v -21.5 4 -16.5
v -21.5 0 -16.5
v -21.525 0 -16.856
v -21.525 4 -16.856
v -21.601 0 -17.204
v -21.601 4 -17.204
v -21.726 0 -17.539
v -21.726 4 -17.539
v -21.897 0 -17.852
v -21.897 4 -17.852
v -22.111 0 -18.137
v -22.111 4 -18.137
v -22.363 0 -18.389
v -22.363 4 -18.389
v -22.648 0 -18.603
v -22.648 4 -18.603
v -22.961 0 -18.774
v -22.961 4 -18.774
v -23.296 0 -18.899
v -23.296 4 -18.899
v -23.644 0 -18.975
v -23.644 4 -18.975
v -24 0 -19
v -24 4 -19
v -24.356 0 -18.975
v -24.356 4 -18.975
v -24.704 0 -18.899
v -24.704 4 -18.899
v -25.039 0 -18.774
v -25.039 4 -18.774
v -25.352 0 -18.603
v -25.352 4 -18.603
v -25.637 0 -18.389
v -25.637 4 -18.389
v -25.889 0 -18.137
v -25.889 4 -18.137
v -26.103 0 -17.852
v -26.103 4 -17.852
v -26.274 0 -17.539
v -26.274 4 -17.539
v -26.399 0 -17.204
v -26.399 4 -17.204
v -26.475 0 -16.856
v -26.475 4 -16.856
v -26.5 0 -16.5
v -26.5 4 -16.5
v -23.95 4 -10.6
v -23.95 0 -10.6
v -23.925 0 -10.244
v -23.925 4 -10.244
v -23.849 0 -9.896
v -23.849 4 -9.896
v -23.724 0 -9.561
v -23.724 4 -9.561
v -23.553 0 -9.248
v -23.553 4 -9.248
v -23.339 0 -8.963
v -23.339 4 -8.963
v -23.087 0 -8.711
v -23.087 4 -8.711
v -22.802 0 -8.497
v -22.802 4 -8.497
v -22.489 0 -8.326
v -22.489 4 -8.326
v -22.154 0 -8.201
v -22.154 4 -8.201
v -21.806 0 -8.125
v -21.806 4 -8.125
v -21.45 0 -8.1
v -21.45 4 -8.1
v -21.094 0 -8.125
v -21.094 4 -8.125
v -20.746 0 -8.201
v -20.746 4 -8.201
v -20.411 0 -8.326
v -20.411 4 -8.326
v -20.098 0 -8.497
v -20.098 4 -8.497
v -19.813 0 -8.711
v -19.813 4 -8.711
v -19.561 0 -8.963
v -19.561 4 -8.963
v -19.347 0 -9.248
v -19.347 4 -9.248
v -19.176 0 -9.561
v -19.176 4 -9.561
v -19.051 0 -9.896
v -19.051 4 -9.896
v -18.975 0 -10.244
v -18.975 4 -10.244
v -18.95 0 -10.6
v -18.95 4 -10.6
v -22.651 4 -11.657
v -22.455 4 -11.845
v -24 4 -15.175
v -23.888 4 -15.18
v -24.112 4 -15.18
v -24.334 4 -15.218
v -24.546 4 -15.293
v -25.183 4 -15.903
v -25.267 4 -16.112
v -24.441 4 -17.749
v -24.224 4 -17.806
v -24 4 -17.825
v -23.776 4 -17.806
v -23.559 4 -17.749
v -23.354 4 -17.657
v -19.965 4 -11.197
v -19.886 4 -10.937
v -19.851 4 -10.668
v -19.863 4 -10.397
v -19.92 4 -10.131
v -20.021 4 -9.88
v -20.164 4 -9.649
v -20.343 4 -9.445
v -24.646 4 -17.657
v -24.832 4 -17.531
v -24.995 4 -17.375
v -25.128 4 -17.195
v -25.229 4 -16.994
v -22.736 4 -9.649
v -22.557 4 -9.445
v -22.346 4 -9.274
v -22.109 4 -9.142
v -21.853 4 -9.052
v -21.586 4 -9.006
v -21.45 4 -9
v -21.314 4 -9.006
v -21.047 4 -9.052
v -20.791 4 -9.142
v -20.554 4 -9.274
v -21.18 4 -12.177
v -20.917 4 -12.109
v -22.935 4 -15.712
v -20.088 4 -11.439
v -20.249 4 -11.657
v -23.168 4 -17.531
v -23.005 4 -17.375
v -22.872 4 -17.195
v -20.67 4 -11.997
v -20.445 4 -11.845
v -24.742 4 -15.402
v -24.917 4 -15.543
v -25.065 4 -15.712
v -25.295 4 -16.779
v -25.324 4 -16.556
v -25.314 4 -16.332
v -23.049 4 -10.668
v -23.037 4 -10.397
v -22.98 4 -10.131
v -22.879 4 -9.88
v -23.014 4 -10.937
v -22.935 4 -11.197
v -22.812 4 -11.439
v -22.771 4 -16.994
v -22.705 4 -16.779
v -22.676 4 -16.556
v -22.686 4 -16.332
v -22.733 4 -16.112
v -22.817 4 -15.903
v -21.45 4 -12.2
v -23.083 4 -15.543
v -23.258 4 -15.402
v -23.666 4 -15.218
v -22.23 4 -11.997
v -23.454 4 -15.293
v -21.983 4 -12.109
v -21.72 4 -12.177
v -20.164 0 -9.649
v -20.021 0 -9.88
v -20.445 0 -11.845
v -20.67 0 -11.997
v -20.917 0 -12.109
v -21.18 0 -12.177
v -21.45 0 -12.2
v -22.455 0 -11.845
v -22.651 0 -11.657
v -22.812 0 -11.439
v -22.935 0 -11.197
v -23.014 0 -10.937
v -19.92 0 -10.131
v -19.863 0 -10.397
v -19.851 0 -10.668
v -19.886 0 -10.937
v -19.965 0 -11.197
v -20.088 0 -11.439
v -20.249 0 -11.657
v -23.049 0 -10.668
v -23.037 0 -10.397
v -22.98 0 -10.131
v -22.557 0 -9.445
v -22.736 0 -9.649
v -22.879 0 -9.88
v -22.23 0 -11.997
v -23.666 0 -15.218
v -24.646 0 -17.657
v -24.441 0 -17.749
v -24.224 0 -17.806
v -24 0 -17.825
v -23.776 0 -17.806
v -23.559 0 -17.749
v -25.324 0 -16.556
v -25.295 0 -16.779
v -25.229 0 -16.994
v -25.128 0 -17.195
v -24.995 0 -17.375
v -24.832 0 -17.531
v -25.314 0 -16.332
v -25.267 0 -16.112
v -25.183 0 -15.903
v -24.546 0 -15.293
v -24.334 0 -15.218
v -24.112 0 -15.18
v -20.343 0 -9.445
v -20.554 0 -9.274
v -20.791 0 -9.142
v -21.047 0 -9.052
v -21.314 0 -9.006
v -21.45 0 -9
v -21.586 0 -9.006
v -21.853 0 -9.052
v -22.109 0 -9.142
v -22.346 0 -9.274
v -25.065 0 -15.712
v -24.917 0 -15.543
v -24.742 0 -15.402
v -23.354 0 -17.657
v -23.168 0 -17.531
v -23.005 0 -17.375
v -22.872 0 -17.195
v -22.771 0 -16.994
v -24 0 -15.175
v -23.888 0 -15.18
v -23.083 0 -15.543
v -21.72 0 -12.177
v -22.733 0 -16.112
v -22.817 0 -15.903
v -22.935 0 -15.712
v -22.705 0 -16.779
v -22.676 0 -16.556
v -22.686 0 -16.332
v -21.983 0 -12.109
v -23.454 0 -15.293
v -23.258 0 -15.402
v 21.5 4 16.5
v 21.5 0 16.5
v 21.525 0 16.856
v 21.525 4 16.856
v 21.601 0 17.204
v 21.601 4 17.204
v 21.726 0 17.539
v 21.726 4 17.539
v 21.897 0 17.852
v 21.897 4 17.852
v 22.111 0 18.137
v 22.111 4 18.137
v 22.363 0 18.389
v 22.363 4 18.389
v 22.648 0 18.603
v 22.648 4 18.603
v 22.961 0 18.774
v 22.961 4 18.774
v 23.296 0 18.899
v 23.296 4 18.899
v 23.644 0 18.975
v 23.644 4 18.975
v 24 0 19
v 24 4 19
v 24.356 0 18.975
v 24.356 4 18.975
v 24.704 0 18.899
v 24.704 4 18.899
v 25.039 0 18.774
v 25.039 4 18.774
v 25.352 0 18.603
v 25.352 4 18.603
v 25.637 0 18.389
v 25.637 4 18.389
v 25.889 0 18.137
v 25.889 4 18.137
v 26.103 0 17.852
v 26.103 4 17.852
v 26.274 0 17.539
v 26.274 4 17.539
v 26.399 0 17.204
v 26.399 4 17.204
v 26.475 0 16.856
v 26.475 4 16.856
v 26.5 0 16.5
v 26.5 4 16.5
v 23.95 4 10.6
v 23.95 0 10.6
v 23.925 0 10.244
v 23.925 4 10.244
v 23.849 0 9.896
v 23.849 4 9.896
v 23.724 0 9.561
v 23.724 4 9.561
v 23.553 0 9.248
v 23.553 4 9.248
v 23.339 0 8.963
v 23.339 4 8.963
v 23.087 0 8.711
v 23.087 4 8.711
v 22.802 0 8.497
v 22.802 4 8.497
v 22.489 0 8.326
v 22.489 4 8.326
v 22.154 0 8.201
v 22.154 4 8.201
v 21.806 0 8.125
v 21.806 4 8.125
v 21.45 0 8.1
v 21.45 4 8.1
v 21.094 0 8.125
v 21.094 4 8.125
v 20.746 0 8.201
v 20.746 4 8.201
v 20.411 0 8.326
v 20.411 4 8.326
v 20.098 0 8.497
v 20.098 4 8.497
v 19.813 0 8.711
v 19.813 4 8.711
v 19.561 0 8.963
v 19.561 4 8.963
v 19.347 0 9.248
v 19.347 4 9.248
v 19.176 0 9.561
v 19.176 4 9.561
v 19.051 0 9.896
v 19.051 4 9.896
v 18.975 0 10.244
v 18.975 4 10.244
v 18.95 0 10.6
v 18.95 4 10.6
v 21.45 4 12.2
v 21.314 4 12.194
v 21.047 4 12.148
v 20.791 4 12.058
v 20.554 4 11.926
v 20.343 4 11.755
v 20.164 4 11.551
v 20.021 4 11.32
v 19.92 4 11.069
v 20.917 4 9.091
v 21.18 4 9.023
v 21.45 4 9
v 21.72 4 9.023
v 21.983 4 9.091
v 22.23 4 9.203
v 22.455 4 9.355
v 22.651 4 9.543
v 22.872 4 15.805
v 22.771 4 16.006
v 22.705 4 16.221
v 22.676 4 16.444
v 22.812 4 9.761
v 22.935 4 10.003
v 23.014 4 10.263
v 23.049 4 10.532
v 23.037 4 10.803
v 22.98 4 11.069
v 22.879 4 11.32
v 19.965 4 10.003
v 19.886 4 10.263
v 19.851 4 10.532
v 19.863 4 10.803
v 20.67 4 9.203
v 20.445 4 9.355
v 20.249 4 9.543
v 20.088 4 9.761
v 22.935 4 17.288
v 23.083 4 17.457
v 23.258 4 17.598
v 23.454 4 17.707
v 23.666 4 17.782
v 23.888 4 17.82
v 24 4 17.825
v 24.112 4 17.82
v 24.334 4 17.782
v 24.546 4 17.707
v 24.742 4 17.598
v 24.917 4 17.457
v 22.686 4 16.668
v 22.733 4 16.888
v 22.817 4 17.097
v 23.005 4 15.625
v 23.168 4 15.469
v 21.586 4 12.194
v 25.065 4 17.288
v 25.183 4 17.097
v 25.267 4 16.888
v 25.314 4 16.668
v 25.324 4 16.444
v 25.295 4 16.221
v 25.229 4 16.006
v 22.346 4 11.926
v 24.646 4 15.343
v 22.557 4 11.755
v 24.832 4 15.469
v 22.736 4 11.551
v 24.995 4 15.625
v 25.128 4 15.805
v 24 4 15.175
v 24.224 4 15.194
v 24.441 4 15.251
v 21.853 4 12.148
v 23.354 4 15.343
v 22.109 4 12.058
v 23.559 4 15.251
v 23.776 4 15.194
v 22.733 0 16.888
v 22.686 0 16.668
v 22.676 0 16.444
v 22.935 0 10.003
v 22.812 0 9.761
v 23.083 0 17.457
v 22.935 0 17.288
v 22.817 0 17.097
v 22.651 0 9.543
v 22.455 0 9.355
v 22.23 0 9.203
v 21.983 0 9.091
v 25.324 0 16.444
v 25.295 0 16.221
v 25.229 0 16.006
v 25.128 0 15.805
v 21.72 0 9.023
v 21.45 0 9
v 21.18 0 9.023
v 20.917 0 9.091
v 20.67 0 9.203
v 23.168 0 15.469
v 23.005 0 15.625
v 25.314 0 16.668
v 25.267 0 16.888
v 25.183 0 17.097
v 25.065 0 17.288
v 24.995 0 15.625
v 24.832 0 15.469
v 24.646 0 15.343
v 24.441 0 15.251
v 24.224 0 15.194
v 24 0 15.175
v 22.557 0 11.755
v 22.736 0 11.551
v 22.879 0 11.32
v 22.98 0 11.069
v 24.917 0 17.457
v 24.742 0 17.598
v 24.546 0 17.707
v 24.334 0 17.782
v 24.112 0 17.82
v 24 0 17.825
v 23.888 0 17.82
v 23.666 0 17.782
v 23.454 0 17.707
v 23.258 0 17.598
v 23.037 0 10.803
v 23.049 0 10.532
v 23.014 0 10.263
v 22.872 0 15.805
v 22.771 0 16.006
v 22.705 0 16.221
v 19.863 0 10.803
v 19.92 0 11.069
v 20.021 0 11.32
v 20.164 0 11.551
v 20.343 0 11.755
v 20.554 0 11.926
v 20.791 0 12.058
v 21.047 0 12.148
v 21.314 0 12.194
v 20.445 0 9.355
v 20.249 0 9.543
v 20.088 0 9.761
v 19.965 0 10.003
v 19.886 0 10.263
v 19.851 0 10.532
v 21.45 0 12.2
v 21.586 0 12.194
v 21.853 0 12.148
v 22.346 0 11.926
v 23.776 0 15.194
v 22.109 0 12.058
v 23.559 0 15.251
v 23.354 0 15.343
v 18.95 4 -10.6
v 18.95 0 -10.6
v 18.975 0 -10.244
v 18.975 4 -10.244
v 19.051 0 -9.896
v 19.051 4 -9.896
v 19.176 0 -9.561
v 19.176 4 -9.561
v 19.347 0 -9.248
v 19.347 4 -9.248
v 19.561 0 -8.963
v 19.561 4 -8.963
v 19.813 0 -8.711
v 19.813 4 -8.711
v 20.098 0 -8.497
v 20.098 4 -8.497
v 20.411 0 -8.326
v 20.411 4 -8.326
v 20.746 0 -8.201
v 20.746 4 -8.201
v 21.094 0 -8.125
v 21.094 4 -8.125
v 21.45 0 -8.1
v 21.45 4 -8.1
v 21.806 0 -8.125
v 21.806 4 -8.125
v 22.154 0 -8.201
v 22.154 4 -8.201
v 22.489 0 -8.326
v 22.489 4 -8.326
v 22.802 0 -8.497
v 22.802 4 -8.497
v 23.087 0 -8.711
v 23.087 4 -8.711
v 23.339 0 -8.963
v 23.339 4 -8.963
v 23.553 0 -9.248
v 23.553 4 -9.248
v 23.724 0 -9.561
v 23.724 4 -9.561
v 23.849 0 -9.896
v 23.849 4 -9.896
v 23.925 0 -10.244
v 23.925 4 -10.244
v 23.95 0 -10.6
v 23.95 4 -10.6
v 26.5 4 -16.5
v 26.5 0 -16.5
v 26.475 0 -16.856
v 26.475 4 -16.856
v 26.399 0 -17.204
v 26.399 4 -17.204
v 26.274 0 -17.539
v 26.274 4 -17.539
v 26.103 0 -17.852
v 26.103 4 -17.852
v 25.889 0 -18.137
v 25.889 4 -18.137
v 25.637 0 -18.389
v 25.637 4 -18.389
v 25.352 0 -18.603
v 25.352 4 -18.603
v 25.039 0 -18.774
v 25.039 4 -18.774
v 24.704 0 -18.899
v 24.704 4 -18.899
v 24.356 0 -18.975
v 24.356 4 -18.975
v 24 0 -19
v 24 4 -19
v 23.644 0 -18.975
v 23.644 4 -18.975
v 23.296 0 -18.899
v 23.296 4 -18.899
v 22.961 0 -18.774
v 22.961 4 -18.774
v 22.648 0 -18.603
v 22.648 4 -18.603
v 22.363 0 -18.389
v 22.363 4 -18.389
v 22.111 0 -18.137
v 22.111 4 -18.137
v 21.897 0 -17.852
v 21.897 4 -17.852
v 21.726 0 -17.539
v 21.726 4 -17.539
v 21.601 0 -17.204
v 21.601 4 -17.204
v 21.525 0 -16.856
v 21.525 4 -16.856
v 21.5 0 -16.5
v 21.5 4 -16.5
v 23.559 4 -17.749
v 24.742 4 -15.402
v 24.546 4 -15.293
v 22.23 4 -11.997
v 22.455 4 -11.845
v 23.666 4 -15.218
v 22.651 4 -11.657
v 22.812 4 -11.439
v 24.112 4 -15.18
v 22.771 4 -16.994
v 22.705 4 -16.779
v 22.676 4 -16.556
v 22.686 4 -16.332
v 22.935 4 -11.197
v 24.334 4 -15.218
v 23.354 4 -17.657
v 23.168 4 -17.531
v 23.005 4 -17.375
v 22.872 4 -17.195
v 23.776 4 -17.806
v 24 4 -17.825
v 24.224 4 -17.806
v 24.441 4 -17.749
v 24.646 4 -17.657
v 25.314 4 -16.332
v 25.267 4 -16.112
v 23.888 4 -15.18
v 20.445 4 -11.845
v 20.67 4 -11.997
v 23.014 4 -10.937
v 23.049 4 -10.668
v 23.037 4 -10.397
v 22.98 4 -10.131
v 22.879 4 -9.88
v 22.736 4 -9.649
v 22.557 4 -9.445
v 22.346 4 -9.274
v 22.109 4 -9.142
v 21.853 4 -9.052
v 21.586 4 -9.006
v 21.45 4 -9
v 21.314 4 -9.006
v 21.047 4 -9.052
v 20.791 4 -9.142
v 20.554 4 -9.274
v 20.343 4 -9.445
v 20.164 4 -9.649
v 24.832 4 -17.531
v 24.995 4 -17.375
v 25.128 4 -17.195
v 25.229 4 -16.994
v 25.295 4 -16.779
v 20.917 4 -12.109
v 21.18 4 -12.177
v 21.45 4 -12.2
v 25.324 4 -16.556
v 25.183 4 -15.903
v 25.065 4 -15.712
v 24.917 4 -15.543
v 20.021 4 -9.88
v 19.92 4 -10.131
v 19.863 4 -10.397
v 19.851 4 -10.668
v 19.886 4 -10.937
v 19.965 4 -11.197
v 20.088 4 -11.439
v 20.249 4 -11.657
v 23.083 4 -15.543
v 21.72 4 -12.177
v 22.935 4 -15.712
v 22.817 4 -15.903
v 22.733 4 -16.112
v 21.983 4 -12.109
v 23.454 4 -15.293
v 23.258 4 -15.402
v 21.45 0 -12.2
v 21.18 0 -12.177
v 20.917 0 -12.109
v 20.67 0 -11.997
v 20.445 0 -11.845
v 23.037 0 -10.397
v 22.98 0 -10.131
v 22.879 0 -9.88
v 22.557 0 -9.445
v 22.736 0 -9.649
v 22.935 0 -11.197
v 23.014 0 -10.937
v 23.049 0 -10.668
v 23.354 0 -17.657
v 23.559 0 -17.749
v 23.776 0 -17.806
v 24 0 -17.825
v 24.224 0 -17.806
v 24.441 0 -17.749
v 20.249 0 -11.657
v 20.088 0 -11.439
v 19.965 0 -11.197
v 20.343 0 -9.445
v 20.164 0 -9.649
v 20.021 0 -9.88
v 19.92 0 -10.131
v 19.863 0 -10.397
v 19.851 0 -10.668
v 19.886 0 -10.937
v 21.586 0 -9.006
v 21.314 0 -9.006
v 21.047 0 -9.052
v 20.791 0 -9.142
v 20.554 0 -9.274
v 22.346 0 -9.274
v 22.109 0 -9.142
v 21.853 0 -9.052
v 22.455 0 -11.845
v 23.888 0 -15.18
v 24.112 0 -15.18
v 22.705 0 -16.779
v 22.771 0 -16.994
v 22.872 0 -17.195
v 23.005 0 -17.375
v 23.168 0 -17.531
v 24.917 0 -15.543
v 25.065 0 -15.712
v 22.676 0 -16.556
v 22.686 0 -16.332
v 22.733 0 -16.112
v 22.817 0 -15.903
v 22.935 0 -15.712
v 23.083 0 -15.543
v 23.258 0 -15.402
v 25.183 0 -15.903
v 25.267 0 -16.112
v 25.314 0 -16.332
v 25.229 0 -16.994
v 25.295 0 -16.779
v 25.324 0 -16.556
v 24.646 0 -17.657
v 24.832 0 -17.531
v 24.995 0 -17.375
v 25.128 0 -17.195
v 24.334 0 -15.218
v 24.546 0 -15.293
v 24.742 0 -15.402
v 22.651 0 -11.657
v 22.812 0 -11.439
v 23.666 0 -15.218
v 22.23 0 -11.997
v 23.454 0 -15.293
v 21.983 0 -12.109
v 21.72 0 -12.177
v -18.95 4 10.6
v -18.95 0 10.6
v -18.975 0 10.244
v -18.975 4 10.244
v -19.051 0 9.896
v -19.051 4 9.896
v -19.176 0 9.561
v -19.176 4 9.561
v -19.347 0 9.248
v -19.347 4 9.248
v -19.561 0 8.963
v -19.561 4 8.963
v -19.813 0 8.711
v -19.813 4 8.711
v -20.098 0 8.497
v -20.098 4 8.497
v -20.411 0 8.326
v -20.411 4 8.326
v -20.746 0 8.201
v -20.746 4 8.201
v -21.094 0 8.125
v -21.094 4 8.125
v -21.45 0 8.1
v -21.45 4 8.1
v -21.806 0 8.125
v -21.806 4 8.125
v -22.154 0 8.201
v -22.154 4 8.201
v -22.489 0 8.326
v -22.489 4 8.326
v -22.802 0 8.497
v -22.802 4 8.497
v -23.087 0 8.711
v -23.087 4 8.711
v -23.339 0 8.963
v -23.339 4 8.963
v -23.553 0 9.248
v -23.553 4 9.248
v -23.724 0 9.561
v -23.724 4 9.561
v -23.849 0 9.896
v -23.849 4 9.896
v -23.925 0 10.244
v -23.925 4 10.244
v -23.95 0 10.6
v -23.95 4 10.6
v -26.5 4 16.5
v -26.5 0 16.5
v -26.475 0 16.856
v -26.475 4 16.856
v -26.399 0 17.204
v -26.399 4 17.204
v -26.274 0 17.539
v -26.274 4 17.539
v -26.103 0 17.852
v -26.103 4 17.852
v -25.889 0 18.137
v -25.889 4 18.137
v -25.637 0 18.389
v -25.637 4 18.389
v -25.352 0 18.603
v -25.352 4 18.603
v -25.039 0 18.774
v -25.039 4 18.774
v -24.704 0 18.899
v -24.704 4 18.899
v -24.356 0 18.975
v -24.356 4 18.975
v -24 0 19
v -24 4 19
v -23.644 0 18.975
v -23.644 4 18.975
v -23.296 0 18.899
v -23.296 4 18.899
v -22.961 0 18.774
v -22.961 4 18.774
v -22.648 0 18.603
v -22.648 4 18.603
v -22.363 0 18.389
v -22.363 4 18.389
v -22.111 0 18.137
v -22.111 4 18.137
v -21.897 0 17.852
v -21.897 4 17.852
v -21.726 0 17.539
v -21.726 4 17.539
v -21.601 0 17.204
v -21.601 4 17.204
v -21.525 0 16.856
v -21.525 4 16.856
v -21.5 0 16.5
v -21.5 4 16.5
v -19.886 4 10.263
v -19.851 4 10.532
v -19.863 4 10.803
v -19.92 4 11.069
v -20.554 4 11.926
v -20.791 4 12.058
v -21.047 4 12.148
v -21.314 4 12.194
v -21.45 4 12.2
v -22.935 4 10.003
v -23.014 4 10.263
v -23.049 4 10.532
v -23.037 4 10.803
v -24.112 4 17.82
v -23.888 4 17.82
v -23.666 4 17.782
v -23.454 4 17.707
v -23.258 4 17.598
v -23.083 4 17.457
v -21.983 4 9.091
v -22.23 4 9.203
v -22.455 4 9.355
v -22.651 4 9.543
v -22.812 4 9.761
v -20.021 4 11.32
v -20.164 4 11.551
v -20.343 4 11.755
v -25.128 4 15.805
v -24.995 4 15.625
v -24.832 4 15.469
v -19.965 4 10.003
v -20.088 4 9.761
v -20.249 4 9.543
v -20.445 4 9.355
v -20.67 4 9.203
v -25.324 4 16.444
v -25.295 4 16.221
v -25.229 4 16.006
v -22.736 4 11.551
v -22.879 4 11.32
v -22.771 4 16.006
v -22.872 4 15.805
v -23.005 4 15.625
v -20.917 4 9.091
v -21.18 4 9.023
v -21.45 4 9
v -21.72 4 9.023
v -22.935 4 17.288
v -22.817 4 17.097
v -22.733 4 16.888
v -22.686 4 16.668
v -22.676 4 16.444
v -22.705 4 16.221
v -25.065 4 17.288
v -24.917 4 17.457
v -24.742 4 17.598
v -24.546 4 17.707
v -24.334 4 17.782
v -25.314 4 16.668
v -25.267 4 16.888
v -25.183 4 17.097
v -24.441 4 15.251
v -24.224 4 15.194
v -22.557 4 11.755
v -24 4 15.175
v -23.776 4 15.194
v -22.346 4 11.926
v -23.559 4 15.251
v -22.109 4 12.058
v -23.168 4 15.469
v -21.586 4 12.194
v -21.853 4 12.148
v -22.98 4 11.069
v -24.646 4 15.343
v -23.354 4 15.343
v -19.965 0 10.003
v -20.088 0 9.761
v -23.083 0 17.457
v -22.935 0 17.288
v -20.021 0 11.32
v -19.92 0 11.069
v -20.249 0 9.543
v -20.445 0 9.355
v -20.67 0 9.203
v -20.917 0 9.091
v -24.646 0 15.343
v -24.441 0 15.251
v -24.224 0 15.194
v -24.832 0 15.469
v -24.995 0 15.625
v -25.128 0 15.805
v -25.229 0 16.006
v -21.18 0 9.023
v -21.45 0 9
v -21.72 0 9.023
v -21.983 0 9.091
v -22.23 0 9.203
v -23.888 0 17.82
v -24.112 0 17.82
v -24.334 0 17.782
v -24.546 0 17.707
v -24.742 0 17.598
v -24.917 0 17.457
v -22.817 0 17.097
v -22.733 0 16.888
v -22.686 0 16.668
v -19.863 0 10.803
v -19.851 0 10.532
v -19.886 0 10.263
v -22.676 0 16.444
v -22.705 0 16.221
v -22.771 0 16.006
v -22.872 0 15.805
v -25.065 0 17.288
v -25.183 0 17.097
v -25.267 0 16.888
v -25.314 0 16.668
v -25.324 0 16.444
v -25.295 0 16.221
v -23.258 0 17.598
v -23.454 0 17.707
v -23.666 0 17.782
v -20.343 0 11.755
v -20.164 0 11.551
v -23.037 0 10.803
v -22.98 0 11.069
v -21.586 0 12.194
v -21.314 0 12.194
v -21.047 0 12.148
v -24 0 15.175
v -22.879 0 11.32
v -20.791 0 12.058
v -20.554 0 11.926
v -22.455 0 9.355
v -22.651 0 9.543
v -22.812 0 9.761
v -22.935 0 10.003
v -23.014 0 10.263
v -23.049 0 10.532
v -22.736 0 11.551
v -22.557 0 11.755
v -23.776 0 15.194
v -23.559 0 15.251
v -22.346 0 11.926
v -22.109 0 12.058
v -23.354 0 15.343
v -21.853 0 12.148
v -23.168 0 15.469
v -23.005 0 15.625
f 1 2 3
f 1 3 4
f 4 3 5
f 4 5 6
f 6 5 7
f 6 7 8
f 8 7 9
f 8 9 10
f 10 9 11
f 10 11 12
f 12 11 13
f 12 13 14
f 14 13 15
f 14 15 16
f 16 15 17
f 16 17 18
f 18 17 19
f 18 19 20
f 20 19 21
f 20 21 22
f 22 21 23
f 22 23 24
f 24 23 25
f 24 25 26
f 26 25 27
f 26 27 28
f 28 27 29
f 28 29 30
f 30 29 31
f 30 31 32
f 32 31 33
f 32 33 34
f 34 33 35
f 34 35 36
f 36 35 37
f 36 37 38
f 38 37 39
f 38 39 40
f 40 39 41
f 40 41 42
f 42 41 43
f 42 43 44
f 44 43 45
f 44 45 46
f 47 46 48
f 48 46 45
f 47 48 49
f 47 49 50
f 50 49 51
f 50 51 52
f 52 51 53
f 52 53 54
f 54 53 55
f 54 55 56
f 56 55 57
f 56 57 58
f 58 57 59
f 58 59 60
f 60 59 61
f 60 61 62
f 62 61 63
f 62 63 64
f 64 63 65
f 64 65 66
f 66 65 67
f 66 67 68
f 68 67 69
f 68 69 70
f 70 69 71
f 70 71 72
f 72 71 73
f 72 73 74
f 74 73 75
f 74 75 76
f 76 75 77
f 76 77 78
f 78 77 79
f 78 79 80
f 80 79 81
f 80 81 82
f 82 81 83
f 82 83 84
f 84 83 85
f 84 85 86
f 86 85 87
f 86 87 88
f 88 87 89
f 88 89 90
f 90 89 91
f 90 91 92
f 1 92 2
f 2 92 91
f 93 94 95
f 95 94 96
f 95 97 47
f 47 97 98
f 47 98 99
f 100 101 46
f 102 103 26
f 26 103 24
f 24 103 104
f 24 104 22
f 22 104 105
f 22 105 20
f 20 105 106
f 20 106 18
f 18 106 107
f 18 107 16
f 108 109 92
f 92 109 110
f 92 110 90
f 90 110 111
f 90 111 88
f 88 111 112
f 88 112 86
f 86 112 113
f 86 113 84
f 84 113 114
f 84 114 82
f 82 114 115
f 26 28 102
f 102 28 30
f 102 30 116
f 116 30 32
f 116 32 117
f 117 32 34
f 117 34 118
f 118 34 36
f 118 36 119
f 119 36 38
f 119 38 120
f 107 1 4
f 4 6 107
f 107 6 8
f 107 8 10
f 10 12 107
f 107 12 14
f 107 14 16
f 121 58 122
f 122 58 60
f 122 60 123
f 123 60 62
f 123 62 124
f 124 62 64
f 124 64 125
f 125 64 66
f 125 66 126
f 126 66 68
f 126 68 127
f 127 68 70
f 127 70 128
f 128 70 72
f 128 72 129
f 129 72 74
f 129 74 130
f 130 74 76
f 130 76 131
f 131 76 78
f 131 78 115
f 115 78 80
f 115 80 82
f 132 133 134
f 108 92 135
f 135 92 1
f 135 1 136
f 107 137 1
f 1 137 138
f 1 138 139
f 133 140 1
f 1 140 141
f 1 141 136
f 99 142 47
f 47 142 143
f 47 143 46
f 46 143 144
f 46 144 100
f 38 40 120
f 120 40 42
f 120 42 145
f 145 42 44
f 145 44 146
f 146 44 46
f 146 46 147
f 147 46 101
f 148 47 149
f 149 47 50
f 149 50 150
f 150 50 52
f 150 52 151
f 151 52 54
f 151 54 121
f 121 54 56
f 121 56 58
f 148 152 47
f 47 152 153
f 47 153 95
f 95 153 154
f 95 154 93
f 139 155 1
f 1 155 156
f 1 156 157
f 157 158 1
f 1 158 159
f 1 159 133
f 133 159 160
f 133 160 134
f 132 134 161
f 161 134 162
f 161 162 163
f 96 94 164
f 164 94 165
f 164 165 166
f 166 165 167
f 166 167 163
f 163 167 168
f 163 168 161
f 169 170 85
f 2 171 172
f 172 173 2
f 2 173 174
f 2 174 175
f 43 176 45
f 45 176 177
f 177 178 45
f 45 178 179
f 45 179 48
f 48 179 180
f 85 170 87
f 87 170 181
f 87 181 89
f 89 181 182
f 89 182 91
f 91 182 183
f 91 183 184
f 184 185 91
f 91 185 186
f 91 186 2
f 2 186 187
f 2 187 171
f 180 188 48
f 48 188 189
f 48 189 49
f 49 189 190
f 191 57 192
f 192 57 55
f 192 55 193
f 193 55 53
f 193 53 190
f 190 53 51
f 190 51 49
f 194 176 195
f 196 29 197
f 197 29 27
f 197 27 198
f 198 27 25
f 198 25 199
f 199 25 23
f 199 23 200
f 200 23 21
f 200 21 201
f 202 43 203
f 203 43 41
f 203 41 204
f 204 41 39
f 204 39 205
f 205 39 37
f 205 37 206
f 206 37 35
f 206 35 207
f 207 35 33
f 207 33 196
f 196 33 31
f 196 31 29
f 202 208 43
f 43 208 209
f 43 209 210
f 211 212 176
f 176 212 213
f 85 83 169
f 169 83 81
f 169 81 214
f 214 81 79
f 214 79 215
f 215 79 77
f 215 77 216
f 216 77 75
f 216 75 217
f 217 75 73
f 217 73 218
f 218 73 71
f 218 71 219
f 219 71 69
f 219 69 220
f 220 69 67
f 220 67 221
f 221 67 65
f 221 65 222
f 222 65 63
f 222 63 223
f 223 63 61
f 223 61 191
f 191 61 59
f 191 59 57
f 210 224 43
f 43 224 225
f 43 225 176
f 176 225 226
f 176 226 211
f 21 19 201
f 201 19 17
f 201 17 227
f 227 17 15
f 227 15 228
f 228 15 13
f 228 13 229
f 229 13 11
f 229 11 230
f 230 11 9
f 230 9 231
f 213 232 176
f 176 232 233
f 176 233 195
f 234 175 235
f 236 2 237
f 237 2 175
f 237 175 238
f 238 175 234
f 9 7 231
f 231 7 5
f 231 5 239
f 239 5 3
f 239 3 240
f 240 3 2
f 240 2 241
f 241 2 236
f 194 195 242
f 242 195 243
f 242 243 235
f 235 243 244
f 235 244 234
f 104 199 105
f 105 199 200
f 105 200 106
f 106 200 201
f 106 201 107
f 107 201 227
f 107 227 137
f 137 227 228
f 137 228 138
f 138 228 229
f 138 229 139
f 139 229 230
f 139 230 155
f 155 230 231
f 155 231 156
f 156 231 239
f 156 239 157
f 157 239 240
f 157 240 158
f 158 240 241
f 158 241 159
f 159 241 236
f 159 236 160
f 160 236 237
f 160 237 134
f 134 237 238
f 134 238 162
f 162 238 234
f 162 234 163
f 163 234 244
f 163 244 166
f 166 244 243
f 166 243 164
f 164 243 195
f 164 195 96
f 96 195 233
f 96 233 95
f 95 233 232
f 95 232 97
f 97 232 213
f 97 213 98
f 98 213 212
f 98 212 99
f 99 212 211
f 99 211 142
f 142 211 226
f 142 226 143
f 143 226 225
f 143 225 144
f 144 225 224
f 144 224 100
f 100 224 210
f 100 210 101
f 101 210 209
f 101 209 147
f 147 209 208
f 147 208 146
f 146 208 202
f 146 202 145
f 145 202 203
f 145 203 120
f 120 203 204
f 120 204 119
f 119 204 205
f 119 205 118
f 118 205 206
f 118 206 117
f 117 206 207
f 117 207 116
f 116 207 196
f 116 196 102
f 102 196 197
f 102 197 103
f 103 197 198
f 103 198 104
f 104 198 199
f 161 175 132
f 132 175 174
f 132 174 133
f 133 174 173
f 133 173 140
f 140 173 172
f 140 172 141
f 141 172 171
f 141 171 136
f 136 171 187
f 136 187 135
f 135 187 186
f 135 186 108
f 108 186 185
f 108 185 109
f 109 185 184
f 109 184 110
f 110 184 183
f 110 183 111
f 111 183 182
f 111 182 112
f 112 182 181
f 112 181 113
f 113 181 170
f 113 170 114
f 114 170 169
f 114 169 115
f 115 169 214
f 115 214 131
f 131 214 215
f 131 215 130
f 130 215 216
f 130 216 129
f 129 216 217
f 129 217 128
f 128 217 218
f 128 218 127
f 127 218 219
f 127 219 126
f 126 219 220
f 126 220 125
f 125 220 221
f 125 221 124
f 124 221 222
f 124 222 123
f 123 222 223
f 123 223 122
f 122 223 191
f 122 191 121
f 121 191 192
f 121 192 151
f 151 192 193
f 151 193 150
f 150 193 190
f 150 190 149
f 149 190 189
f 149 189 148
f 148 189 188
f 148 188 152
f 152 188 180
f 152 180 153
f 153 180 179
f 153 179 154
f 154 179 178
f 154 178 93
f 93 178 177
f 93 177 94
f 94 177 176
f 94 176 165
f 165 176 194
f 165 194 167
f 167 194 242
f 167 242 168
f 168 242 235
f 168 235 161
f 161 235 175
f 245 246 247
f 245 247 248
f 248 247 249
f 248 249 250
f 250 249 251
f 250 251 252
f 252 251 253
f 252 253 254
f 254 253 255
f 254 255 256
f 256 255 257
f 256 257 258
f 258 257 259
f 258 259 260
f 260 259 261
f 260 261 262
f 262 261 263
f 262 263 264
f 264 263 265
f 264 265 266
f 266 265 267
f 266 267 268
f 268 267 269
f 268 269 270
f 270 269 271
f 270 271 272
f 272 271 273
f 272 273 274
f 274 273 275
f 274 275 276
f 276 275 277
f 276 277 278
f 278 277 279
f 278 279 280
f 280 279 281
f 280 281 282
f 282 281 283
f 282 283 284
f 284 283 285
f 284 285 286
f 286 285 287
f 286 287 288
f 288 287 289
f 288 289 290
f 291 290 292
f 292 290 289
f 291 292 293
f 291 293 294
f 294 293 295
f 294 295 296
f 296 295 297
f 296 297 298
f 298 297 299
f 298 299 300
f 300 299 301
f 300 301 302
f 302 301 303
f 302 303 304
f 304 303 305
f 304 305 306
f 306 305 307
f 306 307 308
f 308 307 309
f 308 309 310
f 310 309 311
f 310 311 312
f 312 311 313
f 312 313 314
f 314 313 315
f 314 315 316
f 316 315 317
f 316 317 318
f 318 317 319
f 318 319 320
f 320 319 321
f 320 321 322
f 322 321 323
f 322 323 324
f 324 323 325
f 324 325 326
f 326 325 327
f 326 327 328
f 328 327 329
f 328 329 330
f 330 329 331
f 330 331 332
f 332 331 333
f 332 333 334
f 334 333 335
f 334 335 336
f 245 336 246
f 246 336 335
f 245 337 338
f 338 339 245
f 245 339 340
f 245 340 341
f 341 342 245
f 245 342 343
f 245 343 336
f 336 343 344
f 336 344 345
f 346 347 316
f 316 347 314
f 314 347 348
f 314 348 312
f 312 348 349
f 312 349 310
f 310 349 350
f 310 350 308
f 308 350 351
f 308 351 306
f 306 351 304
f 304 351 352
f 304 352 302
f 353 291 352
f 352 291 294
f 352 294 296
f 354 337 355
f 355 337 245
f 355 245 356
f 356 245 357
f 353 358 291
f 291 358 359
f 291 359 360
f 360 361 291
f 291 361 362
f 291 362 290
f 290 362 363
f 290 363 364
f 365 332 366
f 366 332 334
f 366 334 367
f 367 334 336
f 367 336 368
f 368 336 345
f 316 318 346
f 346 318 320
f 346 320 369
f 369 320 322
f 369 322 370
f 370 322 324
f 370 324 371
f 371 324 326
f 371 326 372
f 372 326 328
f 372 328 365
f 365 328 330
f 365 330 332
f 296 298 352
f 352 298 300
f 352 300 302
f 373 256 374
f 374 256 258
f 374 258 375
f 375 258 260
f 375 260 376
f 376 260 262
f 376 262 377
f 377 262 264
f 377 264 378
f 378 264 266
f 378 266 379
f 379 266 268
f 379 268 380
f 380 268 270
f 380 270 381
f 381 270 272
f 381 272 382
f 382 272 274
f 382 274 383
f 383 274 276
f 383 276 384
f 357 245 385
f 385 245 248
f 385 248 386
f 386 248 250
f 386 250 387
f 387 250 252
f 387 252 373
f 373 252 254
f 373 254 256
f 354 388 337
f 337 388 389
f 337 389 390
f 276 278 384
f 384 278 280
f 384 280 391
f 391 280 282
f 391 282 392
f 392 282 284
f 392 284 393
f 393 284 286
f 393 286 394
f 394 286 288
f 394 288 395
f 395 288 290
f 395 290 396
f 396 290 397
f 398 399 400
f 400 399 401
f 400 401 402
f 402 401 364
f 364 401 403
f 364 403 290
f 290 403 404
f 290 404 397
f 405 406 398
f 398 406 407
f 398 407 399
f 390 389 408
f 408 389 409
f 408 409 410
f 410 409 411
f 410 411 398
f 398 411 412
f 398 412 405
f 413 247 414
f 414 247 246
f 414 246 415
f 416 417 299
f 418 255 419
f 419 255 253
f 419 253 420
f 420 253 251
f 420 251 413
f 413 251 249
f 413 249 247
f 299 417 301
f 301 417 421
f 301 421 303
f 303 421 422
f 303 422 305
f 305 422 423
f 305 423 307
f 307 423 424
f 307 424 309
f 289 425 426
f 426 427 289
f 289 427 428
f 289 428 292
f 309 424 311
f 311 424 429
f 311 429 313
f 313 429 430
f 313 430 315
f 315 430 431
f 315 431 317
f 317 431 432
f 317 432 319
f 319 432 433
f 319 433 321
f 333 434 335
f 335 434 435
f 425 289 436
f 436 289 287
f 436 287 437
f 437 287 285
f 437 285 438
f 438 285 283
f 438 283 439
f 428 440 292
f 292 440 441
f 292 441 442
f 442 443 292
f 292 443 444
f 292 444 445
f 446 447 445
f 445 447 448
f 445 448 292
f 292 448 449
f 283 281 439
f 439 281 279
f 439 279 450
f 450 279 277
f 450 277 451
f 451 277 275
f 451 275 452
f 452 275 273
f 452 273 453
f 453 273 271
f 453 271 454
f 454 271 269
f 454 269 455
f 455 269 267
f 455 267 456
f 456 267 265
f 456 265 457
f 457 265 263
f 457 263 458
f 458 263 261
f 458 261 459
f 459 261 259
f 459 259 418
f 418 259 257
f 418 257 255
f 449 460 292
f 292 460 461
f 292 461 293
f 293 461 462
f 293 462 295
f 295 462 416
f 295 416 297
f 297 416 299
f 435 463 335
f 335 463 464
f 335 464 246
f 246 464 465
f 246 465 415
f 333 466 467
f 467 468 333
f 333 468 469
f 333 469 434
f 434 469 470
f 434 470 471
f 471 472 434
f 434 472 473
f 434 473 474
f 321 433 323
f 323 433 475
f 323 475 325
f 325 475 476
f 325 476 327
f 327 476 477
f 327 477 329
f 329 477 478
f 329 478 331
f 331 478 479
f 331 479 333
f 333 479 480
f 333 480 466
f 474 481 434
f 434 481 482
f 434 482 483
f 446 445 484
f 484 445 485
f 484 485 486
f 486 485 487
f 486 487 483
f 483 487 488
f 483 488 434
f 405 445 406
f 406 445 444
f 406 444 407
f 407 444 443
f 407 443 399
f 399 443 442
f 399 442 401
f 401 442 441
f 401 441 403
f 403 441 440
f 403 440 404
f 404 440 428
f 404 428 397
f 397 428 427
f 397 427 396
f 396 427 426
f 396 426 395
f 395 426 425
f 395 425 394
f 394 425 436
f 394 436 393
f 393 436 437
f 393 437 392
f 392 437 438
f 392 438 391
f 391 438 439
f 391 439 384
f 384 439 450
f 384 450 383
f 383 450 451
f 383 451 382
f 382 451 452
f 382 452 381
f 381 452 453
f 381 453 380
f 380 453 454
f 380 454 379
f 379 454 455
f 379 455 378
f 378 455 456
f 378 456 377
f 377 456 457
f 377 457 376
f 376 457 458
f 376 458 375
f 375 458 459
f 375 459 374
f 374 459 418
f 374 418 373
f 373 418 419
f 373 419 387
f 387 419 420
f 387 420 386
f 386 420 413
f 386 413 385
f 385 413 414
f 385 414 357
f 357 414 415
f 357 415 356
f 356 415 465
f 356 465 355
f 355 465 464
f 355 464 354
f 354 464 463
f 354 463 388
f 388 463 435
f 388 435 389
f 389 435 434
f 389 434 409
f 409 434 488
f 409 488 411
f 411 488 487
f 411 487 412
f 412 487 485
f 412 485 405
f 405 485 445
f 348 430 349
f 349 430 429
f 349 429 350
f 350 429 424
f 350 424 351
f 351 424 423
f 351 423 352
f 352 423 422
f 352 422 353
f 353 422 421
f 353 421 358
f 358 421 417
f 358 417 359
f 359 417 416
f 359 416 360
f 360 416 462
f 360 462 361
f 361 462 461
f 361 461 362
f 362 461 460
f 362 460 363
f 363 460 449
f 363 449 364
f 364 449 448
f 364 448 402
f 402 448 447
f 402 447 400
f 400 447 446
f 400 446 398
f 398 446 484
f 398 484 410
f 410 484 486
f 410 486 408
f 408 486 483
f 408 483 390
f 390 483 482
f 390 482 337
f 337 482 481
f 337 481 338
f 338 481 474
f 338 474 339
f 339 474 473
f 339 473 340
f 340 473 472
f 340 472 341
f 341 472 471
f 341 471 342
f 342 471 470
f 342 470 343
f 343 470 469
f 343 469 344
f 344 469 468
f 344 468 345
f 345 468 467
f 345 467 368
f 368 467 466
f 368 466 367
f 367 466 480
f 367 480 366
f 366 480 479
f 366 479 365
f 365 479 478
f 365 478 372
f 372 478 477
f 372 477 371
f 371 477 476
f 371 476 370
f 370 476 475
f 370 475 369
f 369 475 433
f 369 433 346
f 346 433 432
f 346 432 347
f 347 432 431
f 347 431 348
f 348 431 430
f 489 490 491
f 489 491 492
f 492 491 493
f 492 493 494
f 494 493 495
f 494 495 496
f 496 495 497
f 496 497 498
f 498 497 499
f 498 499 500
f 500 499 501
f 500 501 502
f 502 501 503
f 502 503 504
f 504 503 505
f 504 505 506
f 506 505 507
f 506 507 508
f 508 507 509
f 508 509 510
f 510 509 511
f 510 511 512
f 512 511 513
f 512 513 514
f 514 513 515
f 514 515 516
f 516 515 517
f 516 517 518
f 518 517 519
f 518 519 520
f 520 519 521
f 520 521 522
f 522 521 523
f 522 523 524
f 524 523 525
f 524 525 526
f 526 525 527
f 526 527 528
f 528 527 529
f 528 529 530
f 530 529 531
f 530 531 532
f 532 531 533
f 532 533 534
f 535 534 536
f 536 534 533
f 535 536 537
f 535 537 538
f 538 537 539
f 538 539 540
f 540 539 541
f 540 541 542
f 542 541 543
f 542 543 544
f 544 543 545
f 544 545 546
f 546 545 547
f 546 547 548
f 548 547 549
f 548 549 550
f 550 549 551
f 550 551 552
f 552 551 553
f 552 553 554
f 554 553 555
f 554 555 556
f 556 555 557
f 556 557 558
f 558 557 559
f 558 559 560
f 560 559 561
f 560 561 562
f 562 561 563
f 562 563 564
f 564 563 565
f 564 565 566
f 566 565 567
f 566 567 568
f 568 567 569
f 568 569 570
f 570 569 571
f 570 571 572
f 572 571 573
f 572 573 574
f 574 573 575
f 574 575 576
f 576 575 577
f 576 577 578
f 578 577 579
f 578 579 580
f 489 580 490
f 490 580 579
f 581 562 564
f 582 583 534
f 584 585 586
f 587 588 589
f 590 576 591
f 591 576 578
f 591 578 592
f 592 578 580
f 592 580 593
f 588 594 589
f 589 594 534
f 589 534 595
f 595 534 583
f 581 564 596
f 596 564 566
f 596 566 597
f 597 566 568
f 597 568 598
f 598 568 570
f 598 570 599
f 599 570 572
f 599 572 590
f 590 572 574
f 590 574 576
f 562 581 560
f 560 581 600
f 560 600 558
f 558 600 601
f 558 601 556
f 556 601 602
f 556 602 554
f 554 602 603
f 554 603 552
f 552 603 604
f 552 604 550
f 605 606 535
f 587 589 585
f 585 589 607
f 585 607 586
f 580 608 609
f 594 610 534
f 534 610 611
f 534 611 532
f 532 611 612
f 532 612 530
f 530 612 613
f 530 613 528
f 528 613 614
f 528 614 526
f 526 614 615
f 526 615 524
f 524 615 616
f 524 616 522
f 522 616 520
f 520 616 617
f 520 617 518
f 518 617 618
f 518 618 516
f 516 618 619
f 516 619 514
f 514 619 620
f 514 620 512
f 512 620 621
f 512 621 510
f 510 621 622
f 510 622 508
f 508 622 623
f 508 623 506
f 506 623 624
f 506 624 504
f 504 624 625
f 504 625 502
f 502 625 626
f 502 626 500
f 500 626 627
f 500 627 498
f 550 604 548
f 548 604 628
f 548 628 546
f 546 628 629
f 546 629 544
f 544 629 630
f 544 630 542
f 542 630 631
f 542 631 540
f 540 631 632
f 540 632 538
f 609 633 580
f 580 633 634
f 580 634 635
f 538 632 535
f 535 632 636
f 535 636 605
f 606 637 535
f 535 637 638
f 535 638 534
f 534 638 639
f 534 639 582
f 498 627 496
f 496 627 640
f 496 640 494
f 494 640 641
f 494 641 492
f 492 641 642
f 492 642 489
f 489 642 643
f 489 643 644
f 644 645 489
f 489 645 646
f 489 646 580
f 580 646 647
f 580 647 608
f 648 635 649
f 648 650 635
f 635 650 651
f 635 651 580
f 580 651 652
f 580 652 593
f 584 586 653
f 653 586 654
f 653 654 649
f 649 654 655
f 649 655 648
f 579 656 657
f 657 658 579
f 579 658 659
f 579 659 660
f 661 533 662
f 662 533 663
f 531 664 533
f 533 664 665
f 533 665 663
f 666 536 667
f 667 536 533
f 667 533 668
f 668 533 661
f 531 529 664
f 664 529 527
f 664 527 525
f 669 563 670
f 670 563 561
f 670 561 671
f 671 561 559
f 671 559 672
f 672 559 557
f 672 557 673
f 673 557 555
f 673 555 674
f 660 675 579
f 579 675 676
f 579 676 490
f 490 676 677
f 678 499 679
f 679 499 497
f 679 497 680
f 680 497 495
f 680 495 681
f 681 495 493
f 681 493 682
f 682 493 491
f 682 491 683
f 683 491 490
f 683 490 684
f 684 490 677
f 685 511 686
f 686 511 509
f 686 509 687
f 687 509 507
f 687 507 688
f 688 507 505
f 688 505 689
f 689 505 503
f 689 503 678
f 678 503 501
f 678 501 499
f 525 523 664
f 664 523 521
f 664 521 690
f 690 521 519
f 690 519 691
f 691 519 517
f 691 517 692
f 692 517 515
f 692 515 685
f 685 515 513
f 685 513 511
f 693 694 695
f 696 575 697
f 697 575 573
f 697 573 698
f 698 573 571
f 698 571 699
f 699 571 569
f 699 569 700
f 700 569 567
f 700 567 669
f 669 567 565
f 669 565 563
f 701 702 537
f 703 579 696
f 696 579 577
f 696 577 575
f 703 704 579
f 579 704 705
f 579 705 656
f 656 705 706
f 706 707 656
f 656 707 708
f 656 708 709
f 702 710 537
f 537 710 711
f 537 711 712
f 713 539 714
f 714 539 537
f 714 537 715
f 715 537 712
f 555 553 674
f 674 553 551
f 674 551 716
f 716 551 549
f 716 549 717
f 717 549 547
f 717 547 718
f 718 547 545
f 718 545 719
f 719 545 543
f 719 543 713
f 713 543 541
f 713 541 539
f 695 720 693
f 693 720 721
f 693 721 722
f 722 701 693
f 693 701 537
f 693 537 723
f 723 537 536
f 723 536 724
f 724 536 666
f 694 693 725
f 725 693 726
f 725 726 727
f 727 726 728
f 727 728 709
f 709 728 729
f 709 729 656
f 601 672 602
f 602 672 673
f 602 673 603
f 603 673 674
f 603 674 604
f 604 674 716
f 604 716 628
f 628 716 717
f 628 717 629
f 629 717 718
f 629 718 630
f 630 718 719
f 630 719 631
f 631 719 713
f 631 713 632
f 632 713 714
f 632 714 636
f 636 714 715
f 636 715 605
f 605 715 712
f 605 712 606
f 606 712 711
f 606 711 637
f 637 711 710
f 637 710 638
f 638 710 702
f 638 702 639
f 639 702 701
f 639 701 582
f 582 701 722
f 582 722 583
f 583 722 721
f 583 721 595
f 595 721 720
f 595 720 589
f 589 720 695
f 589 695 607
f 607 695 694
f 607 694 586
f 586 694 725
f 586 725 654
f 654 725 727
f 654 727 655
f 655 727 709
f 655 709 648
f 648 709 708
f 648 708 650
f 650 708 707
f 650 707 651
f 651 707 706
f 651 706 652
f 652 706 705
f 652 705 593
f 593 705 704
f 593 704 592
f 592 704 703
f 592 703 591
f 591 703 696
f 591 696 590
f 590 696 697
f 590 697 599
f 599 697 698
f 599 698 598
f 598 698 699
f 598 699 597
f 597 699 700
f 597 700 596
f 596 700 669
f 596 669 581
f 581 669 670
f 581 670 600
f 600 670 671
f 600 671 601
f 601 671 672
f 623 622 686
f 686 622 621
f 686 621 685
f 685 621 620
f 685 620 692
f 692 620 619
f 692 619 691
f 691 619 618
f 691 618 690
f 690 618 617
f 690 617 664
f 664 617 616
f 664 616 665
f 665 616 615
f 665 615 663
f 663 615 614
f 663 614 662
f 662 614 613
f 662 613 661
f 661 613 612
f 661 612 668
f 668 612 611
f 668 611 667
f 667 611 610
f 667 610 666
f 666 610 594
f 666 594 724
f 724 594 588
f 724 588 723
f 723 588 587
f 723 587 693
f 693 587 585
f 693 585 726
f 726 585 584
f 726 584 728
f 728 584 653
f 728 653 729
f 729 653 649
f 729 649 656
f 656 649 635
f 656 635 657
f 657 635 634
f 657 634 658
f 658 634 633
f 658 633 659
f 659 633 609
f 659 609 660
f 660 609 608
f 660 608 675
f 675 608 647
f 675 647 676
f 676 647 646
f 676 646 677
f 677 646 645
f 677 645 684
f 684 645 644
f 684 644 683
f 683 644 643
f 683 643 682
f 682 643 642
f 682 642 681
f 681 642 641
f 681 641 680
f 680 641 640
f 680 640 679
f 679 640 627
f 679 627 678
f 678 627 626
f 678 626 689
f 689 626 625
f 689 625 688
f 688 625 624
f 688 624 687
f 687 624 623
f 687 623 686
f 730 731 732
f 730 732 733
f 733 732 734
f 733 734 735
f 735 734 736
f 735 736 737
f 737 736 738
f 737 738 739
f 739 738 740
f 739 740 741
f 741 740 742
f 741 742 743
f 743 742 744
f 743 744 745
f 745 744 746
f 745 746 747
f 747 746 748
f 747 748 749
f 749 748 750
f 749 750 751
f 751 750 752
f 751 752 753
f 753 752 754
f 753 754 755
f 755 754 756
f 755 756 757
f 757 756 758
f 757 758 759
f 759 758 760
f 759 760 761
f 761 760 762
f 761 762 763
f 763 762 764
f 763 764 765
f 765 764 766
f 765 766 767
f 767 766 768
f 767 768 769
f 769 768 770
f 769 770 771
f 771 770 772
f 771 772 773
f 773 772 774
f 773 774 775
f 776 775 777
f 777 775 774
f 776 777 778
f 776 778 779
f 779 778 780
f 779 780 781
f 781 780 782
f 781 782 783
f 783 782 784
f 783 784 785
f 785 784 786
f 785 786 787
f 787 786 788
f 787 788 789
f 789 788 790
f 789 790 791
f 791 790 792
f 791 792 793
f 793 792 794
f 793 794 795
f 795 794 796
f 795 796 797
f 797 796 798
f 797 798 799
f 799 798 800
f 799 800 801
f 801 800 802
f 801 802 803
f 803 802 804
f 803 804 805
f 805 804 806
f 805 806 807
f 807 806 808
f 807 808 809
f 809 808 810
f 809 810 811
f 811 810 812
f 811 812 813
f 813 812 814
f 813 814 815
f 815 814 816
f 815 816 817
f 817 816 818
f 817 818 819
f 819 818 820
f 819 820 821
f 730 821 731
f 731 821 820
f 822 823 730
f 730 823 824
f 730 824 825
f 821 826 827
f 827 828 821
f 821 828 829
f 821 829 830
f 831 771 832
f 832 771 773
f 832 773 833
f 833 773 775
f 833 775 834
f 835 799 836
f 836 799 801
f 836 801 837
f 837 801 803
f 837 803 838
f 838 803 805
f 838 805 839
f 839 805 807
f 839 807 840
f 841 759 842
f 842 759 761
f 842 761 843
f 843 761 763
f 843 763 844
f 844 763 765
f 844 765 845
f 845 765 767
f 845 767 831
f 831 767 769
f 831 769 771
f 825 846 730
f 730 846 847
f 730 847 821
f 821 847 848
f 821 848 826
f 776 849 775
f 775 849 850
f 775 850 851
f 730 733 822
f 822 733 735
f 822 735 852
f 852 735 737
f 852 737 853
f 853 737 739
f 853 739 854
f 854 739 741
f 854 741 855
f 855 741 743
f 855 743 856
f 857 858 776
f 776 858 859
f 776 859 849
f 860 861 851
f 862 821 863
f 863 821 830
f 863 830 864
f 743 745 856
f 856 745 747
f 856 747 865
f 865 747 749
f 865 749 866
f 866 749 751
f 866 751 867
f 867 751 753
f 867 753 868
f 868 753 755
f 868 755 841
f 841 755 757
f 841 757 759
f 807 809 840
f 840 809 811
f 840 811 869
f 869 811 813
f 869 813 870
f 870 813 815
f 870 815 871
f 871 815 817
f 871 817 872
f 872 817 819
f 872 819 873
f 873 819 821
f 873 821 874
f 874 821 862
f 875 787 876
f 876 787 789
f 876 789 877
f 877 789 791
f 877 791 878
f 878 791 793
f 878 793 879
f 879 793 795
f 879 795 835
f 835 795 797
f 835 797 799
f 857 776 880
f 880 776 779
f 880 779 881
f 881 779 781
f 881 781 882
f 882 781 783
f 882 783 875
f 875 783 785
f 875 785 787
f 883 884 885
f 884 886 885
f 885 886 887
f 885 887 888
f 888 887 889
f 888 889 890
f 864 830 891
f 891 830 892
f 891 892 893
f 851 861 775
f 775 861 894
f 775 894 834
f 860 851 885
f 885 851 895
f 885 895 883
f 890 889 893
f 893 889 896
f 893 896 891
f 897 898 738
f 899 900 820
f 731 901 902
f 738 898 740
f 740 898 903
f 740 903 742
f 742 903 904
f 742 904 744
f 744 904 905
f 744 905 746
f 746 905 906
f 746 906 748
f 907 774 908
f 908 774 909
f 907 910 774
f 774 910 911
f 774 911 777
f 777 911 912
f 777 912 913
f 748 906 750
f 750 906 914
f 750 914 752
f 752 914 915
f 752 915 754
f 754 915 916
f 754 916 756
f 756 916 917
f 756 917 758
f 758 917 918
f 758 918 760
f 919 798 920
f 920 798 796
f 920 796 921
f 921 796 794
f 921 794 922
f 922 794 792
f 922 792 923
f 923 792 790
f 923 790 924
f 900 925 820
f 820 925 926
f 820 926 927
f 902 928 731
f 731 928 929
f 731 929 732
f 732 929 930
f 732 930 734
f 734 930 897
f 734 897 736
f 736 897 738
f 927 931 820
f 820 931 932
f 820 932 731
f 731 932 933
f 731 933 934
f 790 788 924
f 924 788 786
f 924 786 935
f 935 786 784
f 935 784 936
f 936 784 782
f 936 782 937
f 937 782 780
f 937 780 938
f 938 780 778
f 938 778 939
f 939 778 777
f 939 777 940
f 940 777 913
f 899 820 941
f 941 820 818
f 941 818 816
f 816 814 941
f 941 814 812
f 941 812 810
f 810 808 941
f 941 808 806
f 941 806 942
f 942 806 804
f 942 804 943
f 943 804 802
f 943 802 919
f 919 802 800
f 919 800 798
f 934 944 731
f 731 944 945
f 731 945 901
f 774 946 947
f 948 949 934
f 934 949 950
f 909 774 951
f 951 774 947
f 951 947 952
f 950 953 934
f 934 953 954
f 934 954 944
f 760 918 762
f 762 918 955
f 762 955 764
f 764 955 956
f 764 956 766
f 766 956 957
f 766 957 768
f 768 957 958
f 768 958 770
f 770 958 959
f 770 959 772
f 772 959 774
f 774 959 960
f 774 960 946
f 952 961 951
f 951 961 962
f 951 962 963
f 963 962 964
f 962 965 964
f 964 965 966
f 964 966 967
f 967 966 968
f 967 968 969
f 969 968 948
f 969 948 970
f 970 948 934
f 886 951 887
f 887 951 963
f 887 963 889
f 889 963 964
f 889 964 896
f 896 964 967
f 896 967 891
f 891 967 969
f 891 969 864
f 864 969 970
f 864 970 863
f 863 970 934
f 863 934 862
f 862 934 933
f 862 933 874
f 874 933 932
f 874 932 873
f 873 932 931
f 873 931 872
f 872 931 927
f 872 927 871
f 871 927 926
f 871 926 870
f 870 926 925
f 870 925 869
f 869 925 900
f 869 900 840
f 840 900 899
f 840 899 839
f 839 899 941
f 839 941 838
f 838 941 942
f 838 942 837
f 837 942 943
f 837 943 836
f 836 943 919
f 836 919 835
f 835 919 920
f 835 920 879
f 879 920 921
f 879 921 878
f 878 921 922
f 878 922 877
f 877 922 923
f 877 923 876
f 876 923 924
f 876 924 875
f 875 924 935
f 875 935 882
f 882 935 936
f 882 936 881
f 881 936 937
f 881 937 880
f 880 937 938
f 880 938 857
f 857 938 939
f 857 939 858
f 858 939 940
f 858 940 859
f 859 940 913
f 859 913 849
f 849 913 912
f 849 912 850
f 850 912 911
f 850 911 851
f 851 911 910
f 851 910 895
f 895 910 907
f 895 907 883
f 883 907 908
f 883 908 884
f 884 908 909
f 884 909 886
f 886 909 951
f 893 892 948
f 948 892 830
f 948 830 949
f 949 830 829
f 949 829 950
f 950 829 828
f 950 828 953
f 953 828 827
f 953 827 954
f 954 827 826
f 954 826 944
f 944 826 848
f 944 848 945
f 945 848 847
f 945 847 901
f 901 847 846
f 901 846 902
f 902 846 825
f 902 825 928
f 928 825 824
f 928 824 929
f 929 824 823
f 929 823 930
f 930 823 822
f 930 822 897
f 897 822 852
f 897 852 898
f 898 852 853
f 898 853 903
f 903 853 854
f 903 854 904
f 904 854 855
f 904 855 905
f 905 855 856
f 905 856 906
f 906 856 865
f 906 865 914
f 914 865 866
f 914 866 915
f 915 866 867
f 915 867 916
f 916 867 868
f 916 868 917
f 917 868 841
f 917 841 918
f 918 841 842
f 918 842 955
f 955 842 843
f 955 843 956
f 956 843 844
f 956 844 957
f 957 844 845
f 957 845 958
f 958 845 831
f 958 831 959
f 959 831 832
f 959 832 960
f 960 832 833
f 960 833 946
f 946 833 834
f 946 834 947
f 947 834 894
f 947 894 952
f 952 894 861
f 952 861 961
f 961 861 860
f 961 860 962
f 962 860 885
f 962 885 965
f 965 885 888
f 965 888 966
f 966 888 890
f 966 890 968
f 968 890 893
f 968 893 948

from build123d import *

# Parameters (mm, degrees)
BOSS_EXTRUDE1_DEPTH     = 4
BOSS_EXTRUDE1_2_DEPTH   = 4
BOSS_EXTRUDE1_3_DEPTH   = 4
BOSS_EXTRUDE1_4_DEPTH   = 4
CUT_EXTRUDE1_DEPTH      = 33.851940582
CUT_EXTRUDE1_DEPTH_BACK = 33.851940582
SKETCH1_R               = 1.325
CUT_EXTRUDE2_DEPTH      = 33.851940582
CUT_EXTRUDE2_DEPTH_BACK = 33.851940582
SKETCH4_R               = 1.6


with BuildPart() as part:
    # Sketch5 → Boss-Extrude1 (new body)
    with BuildSketch(Plane(origin=(0, 0, 0), x_dir=(1, 0, 0), z_dir=(0, 1, 0))):
        with BuildLine():
            Line((-26.5, 16.5), (-23.95, 10.6))
            ThreePointArc((-23.95, 10.6), (-21.45, 8.1), (-18.95, 10.6))
            Line((-18.95, 10.6), (-21.5, 16.5))
            ThreePointArc((-21.5, 16.5), (-24, 19), (-26.5, 16.5))
        make_face()
    extrude(amount=BOSS_EXTRUDE1_DEPTH)


with BuildPart() as body_2:
    # Sketch5 → Boss-Extrude1 2 (new body)
    with BuildSketch(Plane(origin=(0, 0, 0), x_dir=(1, 0, 0), z_dir=(0, 1, 0))):
        with BuildLine():
            Line((21.5, 16.5), (18.95, 10.6))
            ThreePointArc((18.95, 10.6), (21.45, 8.1), (23.95, 10.6))
            Line((23.95, 10.6), (26.5, 16.5))
            ThreePointArc((26.5, 16.5), (24, 19), (21.5, 16.5))
        make_face()
    extrude(amount=BOSS_EXTRUDE1_2_DEPTH)


with BuildPart() as body_3:
    # Sketch5 → Boss-Extrude1 3 (new body)
    with BuildSketch(Plane(origin=(0, 0, 0), x_dir=(1, 0, 0), z_dir=(0, 1, 0))):
        with BuildLine():
            Line((26.5, -16.5), (23.95, -10.6))
            ThreePointArc((23.95, -10.6), (21.45, -8.1), (18.95, -10.6))
            Line((18.95, -10.6), (21.5, -16.5))
            ThreePointArc((21.5, -16.5), (24, -19), (26.5, -16.5))
        make_face()
    extrude(amount=BOSS_EXTRUDE1_3_DEPTH)


with BuildPart() as body_4:
    # Sketch5 → Boss-Extrude1 4 (new body)
    with BuildSketch(Plane(origin=(0, 0, 0), x_dir=(1, 0, 0), z_dir=(0, 1, 0))):
        with BuildLine():
            Line((-21.5, -16.5), (-18.95, -10.6))
            ThreePointArc((-18.95, -10.6), (-21.45, -8.1), (-23.95, -10.6))
            Line((-23.95, -10.6), (-26.5, -16.5))
            ThreePointArc((-26.5, -16.5), (-24, -19), (-21.5, -16.5))
        make_face()
    extrude(amount=BOSS_EXTRUDE1_4_DEPTH)


with BuildPart() as cut_extrude1_tool:
    # Sketch1 → Cut-Extrude1 (new, two sides: drawn at the far end of the back side and taken through both)
    with BuildSketch(Plane(origin=(0, 0, 0), x_dir=(1, 0, 0), z_dir=(0, 1, 0)).offset(-CUT_EXTRUDE1_DEPTH_BACK)):
        with Locations(Location((-24, 16.5, 0), (0, 0, 270))):
            Circle(SKETCH1_R)
        with Locations(Location((24, 16.5, 0), (0, 0, 90))):
            Circle(SKETCH1_R)
        with Locations(Location((-24, -16.5, 0), (0, 0, 90))):
            Circle(SKETCH1_R)
        with Locations(Location((24, -16.5, 0), (0, 0, 270))):
            Circle(SKETCH1_R)
    extrude(amount=CUT_EXTRUDE1_DEPTH + CUT_EXTRUDE1_DEPTH_BACK)


with BuildPart() as part_1:
    add(part.part)

    # Cut-Extrude1: cut by cut_extrude1_tool
    add(cut_extrude1_tool.part, mode=Mode.SUBTRACT)


with BuildPart() as body_2_1:
    add(body_2.part)

    # Cut-Extrude1: cut by cut_extrude1_tool
    add(cut_extrude1_tool.part, mode=Mode.SUBTRACT)


with BuildPart() as body_3_1:
    add(body_3.part)

    # Cut-Extrude1: cut by cut_extrude1_tool
    add(cut_extrude1_tool.part, mode=Mode.SUBTRACT)


with BuildPart() as body_4_1:
    add(body_4.part)

    # Cut-Extrude1: cut by cut_extrude1_tool
    add(cut_extrude1_tool.part, mode=Mode.SUBTRACT)


with BuildPart() as cut_extrude2_tool:
    # Sketch4 → Cut-Extrude2 (new, two sides: drawn at the far end of the back side and taken through both)
    with BuildSketch(Plane(origin=(0, 0, 0), x_dir=(1, 0, 0), z_dir=(0, 1, 0)).offset(-CUT_EXTRUDE2_DEPTH_BACK)):
        with Locations(Location((-21.45, 10.6, 0), (0, 0, 270))):
            Circle(SKETCH4_R)
        with Locations(Location((21.45, 10.6, 0), (0, 0, 90))):
            Circle(SKETCH4_R)
        with Locations(Location((-21.45, -10.6, 0), (0, 0, 90))):
            Circle(SKETCH4_R)
        with Locations(Location((21.45, -10.6, 0), (0, 0, 270))):
            Circle(SKETCH4_R)
    extrude(amount=CUT_EXTRUDE2_DEPTH + CUT_EXTRUDE2_DEPTH_BACK)


with BuildPart() as part_2:
    add(part_1.part)

    # Cut-Extrude2: cut by cut_extrude2_tool
    add(cut_extrude2_tool.part, mode=Mode.SUBTRACT)


with BuildPart() as body_2_2:
    add(body_2_1.part)

    # Cut-Extrude2: cut by cut_extrude2_tool
    add(cut_extrude2_tool.part, mode=Mode.SUBTRACT)


with BuildPart() as body_3_2:
    add(body_3_1.part)

    # Cut-Extrude2: cut by cut_extrude2_tool
    add(cut_extrude2_tool.part, mode=Mode.SUBTRACT)


with BuildPart() as body_4_2:
    add(body_4_1.part)

    # Cut-Extrude2: cut by cut_extrude2_tool
    add(cut_extrude2_tool.part, mode=Mode.SUBTRACT)


solid = Compound([part_2.part, body_2_2.part, body_3_2.part, body_4_2.part])
